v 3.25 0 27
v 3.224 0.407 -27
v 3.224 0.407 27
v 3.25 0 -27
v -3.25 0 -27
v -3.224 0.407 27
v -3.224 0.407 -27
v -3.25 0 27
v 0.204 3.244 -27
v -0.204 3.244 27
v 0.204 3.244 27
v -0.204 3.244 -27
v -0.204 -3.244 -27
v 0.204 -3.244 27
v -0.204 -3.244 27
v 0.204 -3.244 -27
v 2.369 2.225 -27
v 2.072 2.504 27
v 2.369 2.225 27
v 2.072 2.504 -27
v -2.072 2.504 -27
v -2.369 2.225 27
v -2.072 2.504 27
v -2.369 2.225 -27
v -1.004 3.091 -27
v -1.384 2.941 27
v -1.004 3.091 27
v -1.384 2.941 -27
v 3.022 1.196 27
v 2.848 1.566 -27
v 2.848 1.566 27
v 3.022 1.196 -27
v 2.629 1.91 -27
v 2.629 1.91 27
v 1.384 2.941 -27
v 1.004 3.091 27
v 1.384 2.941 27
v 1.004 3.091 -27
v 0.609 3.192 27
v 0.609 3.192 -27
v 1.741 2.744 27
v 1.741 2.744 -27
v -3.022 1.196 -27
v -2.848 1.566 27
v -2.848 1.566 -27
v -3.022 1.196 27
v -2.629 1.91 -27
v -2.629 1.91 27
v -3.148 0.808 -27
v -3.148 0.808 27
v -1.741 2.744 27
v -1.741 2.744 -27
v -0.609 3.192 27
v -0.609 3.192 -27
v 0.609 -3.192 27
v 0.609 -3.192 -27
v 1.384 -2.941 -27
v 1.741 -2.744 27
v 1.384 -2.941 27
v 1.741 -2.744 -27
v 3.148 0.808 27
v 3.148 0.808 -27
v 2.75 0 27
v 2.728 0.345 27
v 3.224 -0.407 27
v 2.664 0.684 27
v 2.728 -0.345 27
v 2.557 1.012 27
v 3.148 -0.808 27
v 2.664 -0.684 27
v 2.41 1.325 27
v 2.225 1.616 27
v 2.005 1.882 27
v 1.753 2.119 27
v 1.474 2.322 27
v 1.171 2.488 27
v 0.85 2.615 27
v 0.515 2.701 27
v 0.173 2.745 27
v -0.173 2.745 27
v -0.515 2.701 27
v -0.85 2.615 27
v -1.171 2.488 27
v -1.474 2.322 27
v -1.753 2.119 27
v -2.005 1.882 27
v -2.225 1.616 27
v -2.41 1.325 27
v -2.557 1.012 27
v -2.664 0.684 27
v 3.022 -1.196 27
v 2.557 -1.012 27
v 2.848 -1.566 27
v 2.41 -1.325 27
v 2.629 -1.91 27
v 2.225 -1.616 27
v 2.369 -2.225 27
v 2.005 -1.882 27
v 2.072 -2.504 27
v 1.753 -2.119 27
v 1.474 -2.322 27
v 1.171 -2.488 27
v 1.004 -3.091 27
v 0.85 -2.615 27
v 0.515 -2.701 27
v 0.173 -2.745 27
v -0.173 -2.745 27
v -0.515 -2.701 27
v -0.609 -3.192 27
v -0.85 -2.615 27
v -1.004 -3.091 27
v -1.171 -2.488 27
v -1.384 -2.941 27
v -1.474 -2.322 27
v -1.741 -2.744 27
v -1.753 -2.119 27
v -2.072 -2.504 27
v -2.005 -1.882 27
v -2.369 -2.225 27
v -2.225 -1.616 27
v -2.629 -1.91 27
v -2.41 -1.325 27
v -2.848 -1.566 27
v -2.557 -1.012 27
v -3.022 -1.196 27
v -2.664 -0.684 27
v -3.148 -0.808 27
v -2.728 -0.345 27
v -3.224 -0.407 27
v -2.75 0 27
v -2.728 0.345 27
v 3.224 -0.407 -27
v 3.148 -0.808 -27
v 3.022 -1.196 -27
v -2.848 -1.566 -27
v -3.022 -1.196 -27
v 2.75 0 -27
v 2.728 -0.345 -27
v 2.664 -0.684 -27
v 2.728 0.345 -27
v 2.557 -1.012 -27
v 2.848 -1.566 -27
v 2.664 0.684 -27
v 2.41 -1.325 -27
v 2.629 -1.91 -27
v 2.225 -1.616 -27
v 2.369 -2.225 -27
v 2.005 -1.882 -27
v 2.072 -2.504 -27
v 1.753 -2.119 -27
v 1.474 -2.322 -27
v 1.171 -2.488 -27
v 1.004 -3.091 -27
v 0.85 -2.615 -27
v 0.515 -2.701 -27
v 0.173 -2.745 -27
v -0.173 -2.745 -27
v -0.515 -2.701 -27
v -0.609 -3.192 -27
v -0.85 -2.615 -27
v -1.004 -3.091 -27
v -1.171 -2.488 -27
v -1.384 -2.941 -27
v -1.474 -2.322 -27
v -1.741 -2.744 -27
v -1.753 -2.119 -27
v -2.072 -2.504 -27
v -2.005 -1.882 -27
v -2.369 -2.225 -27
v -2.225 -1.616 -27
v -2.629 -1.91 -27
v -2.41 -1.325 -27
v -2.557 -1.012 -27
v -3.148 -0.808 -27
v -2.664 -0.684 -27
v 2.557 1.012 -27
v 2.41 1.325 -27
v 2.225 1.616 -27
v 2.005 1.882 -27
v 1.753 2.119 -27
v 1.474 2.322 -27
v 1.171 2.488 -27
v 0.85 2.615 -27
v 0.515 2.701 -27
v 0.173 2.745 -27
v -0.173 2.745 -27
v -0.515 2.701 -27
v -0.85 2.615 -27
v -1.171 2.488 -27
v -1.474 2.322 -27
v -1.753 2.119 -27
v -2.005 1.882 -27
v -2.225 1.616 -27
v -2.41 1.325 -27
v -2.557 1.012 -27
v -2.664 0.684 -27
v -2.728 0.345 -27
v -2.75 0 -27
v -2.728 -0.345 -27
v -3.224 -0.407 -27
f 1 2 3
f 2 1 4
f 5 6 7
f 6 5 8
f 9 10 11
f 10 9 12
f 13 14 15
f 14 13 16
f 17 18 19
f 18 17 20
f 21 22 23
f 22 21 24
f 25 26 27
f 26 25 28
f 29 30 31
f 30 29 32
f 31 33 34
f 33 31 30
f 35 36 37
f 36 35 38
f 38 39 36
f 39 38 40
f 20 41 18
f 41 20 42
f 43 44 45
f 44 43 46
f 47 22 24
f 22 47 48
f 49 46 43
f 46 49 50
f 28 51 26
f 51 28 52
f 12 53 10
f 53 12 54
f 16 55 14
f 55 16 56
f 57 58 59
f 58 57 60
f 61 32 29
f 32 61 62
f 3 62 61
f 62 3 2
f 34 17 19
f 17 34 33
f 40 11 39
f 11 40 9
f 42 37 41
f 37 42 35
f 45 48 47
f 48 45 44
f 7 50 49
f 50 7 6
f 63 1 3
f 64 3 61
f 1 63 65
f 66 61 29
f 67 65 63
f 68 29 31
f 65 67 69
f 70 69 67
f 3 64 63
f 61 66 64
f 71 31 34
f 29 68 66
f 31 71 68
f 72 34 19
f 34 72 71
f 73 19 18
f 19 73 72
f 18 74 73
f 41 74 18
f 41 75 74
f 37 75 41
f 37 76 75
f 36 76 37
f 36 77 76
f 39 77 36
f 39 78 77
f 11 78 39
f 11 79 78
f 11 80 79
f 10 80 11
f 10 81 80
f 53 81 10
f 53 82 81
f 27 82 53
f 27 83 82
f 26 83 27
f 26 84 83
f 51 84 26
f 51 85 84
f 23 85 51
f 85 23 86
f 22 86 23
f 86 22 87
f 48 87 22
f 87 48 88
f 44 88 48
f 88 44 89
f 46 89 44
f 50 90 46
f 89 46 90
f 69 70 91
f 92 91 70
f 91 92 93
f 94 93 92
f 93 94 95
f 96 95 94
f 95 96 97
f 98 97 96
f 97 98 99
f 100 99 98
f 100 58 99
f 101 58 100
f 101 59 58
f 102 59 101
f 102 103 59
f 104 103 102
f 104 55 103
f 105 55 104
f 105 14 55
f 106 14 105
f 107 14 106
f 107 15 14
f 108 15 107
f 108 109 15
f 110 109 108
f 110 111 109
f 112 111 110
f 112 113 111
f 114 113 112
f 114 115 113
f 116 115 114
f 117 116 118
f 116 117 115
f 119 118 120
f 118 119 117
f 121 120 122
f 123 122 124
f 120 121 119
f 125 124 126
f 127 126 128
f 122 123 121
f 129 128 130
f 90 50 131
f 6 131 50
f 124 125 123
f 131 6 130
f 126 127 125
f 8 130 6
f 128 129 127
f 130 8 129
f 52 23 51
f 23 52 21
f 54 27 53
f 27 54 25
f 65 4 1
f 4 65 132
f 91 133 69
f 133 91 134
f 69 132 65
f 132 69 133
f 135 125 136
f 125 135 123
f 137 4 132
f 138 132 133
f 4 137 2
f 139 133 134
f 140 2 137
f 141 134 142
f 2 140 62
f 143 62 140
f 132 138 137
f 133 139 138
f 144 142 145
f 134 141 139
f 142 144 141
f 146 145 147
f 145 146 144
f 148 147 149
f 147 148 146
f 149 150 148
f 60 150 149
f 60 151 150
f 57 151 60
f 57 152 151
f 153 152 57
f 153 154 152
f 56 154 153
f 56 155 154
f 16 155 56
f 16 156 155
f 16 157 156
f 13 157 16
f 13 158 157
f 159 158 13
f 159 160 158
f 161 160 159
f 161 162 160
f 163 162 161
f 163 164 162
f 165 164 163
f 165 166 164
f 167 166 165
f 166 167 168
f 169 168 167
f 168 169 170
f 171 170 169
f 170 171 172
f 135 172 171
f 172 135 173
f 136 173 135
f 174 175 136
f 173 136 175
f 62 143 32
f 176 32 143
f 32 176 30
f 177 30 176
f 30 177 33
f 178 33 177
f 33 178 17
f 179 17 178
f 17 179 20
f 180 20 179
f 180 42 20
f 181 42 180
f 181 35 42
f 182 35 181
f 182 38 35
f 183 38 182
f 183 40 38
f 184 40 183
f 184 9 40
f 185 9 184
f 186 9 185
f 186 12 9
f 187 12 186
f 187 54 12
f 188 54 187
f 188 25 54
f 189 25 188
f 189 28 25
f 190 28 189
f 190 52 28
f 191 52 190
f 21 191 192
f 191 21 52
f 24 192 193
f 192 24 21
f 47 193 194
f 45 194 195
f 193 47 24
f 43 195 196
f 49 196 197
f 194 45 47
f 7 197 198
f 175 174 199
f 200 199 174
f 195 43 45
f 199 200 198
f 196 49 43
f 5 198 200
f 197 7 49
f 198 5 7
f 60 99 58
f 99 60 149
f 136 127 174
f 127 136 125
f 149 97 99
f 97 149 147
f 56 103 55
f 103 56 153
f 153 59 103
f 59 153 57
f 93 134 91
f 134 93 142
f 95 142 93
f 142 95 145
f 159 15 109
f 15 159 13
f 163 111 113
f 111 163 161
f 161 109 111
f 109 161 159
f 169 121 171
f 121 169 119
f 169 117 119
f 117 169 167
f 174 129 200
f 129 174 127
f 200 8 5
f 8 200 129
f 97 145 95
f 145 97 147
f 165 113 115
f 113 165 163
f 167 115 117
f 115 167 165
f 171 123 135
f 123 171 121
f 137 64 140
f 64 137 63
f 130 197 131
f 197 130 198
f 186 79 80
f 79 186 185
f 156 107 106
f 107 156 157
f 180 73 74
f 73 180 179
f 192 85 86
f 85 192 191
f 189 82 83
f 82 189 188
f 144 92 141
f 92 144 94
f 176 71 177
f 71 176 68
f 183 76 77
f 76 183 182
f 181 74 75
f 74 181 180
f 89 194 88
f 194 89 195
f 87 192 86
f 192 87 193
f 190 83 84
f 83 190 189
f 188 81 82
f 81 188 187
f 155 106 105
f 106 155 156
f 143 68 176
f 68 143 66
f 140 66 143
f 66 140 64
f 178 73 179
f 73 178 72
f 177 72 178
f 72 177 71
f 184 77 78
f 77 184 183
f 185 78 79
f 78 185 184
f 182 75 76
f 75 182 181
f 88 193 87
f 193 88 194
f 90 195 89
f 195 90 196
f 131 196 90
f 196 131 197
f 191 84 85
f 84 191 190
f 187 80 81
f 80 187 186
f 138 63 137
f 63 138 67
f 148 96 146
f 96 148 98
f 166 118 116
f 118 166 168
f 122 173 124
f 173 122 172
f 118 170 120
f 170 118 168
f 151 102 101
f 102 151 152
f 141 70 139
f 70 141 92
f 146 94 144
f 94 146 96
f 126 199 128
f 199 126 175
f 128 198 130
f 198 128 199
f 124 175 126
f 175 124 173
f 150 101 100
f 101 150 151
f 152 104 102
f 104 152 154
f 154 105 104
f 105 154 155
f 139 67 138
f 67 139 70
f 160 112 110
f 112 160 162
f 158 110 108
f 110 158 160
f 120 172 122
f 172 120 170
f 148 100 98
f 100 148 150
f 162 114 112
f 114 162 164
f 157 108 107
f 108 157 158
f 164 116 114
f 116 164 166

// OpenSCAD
$fn = 50;


difference() {
	union() {
		translate(v = [0, 0, -27.0000000000]) {
			cylinder(h = 54, r = 3.2500000000);
		}
	}
	union() {
		translate(v = [0, 0, -100.0000000000]) {
			cylinder(h = 200, r = 2.7500000000);
		}
	}
}
